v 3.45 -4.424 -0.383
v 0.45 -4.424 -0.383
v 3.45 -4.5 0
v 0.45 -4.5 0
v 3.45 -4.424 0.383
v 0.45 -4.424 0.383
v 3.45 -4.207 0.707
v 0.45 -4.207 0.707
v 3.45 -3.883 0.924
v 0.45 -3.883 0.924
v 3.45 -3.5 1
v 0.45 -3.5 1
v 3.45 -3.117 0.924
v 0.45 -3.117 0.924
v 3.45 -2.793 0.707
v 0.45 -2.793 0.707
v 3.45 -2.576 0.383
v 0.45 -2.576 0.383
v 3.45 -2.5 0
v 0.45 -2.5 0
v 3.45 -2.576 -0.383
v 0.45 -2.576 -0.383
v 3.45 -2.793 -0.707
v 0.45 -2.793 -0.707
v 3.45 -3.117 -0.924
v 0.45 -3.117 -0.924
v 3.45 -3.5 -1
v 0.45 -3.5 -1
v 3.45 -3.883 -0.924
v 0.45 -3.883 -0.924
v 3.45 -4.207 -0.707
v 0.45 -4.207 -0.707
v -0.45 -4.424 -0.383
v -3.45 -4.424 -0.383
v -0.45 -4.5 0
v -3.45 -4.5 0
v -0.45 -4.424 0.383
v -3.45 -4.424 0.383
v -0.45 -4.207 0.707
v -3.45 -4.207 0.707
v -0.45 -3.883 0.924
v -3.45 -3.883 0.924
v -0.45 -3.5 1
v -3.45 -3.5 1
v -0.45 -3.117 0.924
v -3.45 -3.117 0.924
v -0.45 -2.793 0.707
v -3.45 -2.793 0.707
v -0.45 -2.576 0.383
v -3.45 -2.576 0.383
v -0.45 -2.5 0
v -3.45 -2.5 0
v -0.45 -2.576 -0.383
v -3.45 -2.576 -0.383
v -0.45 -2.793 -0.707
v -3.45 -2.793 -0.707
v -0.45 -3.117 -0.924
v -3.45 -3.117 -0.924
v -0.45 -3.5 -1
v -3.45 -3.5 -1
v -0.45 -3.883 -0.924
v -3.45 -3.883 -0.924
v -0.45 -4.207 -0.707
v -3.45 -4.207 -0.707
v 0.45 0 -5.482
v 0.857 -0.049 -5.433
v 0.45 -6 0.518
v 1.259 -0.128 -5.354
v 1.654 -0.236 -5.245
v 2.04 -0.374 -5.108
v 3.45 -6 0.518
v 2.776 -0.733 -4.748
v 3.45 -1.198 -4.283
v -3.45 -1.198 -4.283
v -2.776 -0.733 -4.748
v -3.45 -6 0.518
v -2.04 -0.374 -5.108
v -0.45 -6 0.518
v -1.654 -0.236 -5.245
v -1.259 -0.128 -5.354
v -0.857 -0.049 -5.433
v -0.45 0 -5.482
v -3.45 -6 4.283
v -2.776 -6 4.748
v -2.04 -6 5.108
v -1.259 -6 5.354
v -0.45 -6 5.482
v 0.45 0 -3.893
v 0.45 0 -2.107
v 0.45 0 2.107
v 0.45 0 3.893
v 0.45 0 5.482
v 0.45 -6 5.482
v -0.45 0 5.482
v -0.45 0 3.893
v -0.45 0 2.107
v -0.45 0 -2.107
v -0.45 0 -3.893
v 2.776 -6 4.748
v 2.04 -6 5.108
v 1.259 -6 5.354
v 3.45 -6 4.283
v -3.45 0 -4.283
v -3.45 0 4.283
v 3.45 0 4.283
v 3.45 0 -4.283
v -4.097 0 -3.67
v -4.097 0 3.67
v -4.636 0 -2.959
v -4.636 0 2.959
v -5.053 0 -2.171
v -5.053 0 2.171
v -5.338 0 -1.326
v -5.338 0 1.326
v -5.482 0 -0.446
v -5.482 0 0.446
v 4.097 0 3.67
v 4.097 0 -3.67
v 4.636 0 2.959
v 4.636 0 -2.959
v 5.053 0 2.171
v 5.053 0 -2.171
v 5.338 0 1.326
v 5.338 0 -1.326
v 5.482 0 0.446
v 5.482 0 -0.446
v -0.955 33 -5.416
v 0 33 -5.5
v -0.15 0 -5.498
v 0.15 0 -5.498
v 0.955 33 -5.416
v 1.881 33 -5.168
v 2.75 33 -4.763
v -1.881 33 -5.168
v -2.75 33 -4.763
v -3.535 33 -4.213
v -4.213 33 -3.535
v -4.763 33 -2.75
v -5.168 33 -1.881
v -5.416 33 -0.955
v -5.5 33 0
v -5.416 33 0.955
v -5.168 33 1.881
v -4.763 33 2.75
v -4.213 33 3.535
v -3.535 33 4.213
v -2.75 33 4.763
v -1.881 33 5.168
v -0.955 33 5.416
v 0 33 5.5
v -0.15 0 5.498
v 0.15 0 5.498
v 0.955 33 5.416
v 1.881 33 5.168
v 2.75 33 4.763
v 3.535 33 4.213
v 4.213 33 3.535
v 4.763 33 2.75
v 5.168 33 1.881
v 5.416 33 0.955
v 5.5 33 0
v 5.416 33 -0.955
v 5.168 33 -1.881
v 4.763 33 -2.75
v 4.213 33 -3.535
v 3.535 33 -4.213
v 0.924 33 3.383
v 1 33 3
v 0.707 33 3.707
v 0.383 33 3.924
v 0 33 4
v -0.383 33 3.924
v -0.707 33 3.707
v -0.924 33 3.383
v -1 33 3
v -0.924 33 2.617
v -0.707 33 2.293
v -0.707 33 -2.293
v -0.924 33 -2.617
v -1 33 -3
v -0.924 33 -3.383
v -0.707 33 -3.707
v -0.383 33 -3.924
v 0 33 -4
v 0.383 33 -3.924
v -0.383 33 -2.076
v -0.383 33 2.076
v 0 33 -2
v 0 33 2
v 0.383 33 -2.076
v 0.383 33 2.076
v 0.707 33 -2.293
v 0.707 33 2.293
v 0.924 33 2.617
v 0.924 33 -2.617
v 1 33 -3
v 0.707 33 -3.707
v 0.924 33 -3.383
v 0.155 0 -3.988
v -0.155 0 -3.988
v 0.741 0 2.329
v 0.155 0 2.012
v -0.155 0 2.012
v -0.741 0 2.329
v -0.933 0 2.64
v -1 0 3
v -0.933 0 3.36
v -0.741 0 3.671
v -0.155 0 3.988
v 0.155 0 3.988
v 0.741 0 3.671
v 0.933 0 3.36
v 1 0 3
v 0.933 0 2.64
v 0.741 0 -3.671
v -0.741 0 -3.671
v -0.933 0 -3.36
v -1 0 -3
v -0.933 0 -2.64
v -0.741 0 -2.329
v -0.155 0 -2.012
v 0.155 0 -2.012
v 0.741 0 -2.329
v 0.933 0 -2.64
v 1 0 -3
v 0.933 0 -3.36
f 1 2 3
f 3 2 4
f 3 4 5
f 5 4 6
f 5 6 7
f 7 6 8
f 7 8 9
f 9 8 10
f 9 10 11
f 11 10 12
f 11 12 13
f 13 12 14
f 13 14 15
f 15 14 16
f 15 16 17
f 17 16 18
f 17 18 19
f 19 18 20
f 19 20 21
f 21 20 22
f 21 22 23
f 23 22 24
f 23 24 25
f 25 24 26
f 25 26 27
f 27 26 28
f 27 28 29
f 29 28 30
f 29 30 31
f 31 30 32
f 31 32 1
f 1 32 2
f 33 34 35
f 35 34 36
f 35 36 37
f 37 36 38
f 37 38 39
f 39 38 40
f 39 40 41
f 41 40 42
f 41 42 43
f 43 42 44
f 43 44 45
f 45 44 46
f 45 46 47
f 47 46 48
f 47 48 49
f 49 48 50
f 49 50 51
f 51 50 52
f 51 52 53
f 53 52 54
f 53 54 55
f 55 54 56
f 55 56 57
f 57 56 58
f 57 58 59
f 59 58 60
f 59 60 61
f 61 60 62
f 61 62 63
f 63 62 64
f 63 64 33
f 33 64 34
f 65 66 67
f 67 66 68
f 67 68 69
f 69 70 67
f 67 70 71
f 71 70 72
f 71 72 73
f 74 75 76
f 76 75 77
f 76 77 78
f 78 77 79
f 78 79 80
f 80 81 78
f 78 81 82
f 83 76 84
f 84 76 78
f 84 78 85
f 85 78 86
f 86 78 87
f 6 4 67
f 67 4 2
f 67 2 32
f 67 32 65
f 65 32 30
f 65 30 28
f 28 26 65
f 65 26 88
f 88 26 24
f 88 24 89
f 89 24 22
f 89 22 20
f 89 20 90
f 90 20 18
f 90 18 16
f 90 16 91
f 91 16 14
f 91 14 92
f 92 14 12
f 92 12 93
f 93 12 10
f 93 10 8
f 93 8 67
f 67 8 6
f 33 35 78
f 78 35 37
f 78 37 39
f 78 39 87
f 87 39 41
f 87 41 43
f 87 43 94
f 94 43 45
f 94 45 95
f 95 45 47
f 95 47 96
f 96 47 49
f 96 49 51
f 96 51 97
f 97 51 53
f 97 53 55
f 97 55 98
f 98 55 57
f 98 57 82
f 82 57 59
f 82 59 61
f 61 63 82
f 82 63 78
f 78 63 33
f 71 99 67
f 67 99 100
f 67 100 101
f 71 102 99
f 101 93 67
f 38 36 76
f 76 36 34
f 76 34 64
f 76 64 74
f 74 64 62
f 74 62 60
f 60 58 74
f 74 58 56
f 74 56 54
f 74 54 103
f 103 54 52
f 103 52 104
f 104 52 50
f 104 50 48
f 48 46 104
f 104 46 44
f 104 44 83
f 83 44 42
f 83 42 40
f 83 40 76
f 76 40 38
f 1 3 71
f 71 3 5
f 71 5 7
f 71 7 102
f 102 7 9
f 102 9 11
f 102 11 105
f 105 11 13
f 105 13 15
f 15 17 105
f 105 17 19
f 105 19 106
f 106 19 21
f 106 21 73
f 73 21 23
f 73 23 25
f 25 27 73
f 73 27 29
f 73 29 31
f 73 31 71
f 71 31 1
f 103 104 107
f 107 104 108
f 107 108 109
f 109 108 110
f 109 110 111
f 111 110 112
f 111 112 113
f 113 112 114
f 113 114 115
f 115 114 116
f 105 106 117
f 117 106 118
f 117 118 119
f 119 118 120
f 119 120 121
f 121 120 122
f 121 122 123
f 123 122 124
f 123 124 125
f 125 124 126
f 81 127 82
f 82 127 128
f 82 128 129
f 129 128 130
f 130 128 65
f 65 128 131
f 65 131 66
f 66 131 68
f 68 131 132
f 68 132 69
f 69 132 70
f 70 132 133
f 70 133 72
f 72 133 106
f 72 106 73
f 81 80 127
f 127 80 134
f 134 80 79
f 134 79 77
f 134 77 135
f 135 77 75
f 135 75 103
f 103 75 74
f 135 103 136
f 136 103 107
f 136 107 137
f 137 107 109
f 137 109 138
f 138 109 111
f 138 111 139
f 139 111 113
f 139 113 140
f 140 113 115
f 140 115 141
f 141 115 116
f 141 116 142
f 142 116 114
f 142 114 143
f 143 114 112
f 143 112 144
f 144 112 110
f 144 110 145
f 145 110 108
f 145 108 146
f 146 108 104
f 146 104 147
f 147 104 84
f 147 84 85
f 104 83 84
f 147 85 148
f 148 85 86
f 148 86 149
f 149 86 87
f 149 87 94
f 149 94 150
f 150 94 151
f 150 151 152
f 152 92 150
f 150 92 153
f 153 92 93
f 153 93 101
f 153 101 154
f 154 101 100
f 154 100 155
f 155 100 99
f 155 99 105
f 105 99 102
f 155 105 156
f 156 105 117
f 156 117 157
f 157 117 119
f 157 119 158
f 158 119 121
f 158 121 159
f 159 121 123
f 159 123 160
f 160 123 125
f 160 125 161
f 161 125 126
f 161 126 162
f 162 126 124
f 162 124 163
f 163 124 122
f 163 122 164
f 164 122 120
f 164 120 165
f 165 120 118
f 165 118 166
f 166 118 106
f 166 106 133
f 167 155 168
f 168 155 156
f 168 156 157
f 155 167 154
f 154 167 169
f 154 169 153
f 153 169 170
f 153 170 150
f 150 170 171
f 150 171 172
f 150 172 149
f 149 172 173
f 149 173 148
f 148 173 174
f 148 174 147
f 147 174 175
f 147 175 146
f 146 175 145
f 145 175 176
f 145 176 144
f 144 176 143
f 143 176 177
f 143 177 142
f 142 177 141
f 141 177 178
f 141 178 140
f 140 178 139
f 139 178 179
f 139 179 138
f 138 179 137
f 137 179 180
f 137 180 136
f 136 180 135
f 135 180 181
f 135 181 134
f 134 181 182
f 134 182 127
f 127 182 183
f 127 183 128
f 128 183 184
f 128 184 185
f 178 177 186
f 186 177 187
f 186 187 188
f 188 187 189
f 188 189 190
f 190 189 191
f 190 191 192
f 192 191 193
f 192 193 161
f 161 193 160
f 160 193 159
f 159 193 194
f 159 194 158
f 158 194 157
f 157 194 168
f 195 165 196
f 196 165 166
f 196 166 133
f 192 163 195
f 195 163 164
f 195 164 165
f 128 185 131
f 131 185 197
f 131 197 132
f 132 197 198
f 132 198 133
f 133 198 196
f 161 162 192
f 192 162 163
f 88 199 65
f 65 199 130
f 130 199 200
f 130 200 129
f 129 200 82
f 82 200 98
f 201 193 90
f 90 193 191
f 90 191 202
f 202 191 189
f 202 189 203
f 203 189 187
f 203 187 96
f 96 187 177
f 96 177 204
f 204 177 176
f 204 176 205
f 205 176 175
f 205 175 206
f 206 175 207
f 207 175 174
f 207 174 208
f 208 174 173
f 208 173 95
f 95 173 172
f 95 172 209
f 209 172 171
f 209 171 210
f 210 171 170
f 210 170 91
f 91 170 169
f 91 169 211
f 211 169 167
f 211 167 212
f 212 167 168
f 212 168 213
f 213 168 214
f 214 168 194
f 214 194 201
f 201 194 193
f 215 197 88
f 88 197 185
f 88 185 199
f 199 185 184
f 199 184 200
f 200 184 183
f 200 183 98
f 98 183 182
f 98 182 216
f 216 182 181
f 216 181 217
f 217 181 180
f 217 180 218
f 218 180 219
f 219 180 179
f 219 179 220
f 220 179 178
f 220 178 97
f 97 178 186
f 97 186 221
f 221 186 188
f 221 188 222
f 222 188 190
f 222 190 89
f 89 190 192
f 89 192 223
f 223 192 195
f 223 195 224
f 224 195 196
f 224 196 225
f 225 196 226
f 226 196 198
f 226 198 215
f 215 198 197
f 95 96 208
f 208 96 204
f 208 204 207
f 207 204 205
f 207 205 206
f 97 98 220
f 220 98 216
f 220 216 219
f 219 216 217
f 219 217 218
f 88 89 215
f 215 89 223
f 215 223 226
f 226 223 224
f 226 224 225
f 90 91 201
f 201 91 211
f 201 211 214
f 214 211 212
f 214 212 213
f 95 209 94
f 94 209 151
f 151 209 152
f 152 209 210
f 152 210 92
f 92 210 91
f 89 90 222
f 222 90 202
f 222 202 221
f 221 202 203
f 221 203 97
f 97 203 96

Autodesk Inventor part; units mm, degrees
ref_plane "YZ Plane" through (0, 0, 0) normal (1, 0, 0) x (0, 1, 0)
ref_plane "XZ Plane" through (0, 0, 0) normal (0, 1, 0) x (-1, 0, 0)
ref_plane "XY Plane" through (0, 0, 0) normal (0, 0, 1) x (1, 0, 0)
sketch "Sketch1" plane through (0, 0, 0) normal (0, 1, 0) x (-1, 0, 0)
  circle A0 centre (0, 0) radius 5.5
  dimension "d0" = 11
extrude "Extrusion1" add sketch "Sketch1" along normal blind 33
sketch "Sketch6" plane through (0, 0, 0) normal (0, -1, 0) x (1, 0, 0)
  circle A0 centre (0, 0) radius 5.5 projected
  line L0 (3.45, 0) -> (3.45, -4.2834)
  line L1 (0.45, 0) -> (0.45, -5.4816)
  line L2 (3.45, -5.4816) -> (3.45, -4.2834)
  line L3 (3.45, -5.4816) -> (0.45, -5.4816)
  line L4 (0.45, 0) -> (0.45, 5.4816)
  line L5 (3.45, 5.3243) -> (3.45, 0)
  line L6 (3.45, 5.3243) -> (0.45, 5.4816)
  line L7 (0, -5.5) -> (0, 5.5)
  line L8 (-3.45, 0) -> (-3.45, -4.2834)
  line L9 (-0.45, 0) -> (-0.45, -5.4816)
  line L10 (-3.45, -5.4816) -> (-3.45, -4.2834)
  line L11 (-3.45, -5.4816) -> (-0.45, -5.4816)
  line L12 (-0.45, 0) -> (-0.45, 5.4816)
  line L13 (-3.45, 5.3243) -> (-3.45, 0)
  line L14 (-3.45, 5.3243) -> (-0.45, 5.4816)
  point P0 (-3.45, 4.2834)
  point P1 (3.45, 4.2834)
  dimension "d20" = 3
  dimension "d21" = 3
  dimension "d22" = 0.45
  dimension "d23" = 2.05
  dimension "d24" = 2.05
extrude "Extrusion5" add sketch "Sketch6" along normal blind 6 contours A0 L5 L0 L1 L4 | L12 L9 A0 L8 L13
sketch "Sketch8" plane through (0, 0, 0) normal (1, 0, 0) x (0, 1, 0)
  line L0 (0, -5.5) -> (33, -5.5) projected
  line L1 (0, -5.4816) -> (-6, -5.4816) projected
  line L2 (0, -5.4816) -> (0, 5.4816) projected
  line L3 (0, -5.4816) -> (-6, 0.5184)
  line L4 (0, -5.4816) -> (8.4853, -5.4816) construction
  line L5 (-6, -5.4816) -> (-6, 5.4816) projected
  line L6 (-6, 0.5184) -> (-6, -5.4816)
  point P0 (0, 0)
  dimension "d27" = 135
extrude "Extrusion6" cut sketch "Sketch8" along normal through all both and the other way through all
sketch "Sketch10" plane through (0, 0, 0) normal (1, 0, 0) x (0, 1, 0)
  circle A0 centre (-3.5, 0) radius 1
  line L0 (0, -5.5) -> (33, -5.5) projected
  line L1 (-6, 0.5184) -> (-6, 5.4816) projected
  point P0 (0, 0)
  dimension "d30" = 2
  dimension "d31" = 5.5
  dimension "d32" = 2.5
extrude "Extrusion7" cut sketch "Sketch10" along normal through all both and the other way through all
sketch "Sketch11" plane through (0, 33, 0) normal (0, 1, 0) x (1, 0, 0)
  circle A0 centre (0, 3) radius 1
  circle A1 centre (0, -3) radius 1
  point P0 (0, 0)
  dimension "d35" = 2
  dimension "d36" = 2
  dimension "d37" = 3
  dimension "d38" = 3
extrude "Extrusion8" cut sketch "Sketch11" against normal blind 33
properties part number "Part4 finger(indexx)"
